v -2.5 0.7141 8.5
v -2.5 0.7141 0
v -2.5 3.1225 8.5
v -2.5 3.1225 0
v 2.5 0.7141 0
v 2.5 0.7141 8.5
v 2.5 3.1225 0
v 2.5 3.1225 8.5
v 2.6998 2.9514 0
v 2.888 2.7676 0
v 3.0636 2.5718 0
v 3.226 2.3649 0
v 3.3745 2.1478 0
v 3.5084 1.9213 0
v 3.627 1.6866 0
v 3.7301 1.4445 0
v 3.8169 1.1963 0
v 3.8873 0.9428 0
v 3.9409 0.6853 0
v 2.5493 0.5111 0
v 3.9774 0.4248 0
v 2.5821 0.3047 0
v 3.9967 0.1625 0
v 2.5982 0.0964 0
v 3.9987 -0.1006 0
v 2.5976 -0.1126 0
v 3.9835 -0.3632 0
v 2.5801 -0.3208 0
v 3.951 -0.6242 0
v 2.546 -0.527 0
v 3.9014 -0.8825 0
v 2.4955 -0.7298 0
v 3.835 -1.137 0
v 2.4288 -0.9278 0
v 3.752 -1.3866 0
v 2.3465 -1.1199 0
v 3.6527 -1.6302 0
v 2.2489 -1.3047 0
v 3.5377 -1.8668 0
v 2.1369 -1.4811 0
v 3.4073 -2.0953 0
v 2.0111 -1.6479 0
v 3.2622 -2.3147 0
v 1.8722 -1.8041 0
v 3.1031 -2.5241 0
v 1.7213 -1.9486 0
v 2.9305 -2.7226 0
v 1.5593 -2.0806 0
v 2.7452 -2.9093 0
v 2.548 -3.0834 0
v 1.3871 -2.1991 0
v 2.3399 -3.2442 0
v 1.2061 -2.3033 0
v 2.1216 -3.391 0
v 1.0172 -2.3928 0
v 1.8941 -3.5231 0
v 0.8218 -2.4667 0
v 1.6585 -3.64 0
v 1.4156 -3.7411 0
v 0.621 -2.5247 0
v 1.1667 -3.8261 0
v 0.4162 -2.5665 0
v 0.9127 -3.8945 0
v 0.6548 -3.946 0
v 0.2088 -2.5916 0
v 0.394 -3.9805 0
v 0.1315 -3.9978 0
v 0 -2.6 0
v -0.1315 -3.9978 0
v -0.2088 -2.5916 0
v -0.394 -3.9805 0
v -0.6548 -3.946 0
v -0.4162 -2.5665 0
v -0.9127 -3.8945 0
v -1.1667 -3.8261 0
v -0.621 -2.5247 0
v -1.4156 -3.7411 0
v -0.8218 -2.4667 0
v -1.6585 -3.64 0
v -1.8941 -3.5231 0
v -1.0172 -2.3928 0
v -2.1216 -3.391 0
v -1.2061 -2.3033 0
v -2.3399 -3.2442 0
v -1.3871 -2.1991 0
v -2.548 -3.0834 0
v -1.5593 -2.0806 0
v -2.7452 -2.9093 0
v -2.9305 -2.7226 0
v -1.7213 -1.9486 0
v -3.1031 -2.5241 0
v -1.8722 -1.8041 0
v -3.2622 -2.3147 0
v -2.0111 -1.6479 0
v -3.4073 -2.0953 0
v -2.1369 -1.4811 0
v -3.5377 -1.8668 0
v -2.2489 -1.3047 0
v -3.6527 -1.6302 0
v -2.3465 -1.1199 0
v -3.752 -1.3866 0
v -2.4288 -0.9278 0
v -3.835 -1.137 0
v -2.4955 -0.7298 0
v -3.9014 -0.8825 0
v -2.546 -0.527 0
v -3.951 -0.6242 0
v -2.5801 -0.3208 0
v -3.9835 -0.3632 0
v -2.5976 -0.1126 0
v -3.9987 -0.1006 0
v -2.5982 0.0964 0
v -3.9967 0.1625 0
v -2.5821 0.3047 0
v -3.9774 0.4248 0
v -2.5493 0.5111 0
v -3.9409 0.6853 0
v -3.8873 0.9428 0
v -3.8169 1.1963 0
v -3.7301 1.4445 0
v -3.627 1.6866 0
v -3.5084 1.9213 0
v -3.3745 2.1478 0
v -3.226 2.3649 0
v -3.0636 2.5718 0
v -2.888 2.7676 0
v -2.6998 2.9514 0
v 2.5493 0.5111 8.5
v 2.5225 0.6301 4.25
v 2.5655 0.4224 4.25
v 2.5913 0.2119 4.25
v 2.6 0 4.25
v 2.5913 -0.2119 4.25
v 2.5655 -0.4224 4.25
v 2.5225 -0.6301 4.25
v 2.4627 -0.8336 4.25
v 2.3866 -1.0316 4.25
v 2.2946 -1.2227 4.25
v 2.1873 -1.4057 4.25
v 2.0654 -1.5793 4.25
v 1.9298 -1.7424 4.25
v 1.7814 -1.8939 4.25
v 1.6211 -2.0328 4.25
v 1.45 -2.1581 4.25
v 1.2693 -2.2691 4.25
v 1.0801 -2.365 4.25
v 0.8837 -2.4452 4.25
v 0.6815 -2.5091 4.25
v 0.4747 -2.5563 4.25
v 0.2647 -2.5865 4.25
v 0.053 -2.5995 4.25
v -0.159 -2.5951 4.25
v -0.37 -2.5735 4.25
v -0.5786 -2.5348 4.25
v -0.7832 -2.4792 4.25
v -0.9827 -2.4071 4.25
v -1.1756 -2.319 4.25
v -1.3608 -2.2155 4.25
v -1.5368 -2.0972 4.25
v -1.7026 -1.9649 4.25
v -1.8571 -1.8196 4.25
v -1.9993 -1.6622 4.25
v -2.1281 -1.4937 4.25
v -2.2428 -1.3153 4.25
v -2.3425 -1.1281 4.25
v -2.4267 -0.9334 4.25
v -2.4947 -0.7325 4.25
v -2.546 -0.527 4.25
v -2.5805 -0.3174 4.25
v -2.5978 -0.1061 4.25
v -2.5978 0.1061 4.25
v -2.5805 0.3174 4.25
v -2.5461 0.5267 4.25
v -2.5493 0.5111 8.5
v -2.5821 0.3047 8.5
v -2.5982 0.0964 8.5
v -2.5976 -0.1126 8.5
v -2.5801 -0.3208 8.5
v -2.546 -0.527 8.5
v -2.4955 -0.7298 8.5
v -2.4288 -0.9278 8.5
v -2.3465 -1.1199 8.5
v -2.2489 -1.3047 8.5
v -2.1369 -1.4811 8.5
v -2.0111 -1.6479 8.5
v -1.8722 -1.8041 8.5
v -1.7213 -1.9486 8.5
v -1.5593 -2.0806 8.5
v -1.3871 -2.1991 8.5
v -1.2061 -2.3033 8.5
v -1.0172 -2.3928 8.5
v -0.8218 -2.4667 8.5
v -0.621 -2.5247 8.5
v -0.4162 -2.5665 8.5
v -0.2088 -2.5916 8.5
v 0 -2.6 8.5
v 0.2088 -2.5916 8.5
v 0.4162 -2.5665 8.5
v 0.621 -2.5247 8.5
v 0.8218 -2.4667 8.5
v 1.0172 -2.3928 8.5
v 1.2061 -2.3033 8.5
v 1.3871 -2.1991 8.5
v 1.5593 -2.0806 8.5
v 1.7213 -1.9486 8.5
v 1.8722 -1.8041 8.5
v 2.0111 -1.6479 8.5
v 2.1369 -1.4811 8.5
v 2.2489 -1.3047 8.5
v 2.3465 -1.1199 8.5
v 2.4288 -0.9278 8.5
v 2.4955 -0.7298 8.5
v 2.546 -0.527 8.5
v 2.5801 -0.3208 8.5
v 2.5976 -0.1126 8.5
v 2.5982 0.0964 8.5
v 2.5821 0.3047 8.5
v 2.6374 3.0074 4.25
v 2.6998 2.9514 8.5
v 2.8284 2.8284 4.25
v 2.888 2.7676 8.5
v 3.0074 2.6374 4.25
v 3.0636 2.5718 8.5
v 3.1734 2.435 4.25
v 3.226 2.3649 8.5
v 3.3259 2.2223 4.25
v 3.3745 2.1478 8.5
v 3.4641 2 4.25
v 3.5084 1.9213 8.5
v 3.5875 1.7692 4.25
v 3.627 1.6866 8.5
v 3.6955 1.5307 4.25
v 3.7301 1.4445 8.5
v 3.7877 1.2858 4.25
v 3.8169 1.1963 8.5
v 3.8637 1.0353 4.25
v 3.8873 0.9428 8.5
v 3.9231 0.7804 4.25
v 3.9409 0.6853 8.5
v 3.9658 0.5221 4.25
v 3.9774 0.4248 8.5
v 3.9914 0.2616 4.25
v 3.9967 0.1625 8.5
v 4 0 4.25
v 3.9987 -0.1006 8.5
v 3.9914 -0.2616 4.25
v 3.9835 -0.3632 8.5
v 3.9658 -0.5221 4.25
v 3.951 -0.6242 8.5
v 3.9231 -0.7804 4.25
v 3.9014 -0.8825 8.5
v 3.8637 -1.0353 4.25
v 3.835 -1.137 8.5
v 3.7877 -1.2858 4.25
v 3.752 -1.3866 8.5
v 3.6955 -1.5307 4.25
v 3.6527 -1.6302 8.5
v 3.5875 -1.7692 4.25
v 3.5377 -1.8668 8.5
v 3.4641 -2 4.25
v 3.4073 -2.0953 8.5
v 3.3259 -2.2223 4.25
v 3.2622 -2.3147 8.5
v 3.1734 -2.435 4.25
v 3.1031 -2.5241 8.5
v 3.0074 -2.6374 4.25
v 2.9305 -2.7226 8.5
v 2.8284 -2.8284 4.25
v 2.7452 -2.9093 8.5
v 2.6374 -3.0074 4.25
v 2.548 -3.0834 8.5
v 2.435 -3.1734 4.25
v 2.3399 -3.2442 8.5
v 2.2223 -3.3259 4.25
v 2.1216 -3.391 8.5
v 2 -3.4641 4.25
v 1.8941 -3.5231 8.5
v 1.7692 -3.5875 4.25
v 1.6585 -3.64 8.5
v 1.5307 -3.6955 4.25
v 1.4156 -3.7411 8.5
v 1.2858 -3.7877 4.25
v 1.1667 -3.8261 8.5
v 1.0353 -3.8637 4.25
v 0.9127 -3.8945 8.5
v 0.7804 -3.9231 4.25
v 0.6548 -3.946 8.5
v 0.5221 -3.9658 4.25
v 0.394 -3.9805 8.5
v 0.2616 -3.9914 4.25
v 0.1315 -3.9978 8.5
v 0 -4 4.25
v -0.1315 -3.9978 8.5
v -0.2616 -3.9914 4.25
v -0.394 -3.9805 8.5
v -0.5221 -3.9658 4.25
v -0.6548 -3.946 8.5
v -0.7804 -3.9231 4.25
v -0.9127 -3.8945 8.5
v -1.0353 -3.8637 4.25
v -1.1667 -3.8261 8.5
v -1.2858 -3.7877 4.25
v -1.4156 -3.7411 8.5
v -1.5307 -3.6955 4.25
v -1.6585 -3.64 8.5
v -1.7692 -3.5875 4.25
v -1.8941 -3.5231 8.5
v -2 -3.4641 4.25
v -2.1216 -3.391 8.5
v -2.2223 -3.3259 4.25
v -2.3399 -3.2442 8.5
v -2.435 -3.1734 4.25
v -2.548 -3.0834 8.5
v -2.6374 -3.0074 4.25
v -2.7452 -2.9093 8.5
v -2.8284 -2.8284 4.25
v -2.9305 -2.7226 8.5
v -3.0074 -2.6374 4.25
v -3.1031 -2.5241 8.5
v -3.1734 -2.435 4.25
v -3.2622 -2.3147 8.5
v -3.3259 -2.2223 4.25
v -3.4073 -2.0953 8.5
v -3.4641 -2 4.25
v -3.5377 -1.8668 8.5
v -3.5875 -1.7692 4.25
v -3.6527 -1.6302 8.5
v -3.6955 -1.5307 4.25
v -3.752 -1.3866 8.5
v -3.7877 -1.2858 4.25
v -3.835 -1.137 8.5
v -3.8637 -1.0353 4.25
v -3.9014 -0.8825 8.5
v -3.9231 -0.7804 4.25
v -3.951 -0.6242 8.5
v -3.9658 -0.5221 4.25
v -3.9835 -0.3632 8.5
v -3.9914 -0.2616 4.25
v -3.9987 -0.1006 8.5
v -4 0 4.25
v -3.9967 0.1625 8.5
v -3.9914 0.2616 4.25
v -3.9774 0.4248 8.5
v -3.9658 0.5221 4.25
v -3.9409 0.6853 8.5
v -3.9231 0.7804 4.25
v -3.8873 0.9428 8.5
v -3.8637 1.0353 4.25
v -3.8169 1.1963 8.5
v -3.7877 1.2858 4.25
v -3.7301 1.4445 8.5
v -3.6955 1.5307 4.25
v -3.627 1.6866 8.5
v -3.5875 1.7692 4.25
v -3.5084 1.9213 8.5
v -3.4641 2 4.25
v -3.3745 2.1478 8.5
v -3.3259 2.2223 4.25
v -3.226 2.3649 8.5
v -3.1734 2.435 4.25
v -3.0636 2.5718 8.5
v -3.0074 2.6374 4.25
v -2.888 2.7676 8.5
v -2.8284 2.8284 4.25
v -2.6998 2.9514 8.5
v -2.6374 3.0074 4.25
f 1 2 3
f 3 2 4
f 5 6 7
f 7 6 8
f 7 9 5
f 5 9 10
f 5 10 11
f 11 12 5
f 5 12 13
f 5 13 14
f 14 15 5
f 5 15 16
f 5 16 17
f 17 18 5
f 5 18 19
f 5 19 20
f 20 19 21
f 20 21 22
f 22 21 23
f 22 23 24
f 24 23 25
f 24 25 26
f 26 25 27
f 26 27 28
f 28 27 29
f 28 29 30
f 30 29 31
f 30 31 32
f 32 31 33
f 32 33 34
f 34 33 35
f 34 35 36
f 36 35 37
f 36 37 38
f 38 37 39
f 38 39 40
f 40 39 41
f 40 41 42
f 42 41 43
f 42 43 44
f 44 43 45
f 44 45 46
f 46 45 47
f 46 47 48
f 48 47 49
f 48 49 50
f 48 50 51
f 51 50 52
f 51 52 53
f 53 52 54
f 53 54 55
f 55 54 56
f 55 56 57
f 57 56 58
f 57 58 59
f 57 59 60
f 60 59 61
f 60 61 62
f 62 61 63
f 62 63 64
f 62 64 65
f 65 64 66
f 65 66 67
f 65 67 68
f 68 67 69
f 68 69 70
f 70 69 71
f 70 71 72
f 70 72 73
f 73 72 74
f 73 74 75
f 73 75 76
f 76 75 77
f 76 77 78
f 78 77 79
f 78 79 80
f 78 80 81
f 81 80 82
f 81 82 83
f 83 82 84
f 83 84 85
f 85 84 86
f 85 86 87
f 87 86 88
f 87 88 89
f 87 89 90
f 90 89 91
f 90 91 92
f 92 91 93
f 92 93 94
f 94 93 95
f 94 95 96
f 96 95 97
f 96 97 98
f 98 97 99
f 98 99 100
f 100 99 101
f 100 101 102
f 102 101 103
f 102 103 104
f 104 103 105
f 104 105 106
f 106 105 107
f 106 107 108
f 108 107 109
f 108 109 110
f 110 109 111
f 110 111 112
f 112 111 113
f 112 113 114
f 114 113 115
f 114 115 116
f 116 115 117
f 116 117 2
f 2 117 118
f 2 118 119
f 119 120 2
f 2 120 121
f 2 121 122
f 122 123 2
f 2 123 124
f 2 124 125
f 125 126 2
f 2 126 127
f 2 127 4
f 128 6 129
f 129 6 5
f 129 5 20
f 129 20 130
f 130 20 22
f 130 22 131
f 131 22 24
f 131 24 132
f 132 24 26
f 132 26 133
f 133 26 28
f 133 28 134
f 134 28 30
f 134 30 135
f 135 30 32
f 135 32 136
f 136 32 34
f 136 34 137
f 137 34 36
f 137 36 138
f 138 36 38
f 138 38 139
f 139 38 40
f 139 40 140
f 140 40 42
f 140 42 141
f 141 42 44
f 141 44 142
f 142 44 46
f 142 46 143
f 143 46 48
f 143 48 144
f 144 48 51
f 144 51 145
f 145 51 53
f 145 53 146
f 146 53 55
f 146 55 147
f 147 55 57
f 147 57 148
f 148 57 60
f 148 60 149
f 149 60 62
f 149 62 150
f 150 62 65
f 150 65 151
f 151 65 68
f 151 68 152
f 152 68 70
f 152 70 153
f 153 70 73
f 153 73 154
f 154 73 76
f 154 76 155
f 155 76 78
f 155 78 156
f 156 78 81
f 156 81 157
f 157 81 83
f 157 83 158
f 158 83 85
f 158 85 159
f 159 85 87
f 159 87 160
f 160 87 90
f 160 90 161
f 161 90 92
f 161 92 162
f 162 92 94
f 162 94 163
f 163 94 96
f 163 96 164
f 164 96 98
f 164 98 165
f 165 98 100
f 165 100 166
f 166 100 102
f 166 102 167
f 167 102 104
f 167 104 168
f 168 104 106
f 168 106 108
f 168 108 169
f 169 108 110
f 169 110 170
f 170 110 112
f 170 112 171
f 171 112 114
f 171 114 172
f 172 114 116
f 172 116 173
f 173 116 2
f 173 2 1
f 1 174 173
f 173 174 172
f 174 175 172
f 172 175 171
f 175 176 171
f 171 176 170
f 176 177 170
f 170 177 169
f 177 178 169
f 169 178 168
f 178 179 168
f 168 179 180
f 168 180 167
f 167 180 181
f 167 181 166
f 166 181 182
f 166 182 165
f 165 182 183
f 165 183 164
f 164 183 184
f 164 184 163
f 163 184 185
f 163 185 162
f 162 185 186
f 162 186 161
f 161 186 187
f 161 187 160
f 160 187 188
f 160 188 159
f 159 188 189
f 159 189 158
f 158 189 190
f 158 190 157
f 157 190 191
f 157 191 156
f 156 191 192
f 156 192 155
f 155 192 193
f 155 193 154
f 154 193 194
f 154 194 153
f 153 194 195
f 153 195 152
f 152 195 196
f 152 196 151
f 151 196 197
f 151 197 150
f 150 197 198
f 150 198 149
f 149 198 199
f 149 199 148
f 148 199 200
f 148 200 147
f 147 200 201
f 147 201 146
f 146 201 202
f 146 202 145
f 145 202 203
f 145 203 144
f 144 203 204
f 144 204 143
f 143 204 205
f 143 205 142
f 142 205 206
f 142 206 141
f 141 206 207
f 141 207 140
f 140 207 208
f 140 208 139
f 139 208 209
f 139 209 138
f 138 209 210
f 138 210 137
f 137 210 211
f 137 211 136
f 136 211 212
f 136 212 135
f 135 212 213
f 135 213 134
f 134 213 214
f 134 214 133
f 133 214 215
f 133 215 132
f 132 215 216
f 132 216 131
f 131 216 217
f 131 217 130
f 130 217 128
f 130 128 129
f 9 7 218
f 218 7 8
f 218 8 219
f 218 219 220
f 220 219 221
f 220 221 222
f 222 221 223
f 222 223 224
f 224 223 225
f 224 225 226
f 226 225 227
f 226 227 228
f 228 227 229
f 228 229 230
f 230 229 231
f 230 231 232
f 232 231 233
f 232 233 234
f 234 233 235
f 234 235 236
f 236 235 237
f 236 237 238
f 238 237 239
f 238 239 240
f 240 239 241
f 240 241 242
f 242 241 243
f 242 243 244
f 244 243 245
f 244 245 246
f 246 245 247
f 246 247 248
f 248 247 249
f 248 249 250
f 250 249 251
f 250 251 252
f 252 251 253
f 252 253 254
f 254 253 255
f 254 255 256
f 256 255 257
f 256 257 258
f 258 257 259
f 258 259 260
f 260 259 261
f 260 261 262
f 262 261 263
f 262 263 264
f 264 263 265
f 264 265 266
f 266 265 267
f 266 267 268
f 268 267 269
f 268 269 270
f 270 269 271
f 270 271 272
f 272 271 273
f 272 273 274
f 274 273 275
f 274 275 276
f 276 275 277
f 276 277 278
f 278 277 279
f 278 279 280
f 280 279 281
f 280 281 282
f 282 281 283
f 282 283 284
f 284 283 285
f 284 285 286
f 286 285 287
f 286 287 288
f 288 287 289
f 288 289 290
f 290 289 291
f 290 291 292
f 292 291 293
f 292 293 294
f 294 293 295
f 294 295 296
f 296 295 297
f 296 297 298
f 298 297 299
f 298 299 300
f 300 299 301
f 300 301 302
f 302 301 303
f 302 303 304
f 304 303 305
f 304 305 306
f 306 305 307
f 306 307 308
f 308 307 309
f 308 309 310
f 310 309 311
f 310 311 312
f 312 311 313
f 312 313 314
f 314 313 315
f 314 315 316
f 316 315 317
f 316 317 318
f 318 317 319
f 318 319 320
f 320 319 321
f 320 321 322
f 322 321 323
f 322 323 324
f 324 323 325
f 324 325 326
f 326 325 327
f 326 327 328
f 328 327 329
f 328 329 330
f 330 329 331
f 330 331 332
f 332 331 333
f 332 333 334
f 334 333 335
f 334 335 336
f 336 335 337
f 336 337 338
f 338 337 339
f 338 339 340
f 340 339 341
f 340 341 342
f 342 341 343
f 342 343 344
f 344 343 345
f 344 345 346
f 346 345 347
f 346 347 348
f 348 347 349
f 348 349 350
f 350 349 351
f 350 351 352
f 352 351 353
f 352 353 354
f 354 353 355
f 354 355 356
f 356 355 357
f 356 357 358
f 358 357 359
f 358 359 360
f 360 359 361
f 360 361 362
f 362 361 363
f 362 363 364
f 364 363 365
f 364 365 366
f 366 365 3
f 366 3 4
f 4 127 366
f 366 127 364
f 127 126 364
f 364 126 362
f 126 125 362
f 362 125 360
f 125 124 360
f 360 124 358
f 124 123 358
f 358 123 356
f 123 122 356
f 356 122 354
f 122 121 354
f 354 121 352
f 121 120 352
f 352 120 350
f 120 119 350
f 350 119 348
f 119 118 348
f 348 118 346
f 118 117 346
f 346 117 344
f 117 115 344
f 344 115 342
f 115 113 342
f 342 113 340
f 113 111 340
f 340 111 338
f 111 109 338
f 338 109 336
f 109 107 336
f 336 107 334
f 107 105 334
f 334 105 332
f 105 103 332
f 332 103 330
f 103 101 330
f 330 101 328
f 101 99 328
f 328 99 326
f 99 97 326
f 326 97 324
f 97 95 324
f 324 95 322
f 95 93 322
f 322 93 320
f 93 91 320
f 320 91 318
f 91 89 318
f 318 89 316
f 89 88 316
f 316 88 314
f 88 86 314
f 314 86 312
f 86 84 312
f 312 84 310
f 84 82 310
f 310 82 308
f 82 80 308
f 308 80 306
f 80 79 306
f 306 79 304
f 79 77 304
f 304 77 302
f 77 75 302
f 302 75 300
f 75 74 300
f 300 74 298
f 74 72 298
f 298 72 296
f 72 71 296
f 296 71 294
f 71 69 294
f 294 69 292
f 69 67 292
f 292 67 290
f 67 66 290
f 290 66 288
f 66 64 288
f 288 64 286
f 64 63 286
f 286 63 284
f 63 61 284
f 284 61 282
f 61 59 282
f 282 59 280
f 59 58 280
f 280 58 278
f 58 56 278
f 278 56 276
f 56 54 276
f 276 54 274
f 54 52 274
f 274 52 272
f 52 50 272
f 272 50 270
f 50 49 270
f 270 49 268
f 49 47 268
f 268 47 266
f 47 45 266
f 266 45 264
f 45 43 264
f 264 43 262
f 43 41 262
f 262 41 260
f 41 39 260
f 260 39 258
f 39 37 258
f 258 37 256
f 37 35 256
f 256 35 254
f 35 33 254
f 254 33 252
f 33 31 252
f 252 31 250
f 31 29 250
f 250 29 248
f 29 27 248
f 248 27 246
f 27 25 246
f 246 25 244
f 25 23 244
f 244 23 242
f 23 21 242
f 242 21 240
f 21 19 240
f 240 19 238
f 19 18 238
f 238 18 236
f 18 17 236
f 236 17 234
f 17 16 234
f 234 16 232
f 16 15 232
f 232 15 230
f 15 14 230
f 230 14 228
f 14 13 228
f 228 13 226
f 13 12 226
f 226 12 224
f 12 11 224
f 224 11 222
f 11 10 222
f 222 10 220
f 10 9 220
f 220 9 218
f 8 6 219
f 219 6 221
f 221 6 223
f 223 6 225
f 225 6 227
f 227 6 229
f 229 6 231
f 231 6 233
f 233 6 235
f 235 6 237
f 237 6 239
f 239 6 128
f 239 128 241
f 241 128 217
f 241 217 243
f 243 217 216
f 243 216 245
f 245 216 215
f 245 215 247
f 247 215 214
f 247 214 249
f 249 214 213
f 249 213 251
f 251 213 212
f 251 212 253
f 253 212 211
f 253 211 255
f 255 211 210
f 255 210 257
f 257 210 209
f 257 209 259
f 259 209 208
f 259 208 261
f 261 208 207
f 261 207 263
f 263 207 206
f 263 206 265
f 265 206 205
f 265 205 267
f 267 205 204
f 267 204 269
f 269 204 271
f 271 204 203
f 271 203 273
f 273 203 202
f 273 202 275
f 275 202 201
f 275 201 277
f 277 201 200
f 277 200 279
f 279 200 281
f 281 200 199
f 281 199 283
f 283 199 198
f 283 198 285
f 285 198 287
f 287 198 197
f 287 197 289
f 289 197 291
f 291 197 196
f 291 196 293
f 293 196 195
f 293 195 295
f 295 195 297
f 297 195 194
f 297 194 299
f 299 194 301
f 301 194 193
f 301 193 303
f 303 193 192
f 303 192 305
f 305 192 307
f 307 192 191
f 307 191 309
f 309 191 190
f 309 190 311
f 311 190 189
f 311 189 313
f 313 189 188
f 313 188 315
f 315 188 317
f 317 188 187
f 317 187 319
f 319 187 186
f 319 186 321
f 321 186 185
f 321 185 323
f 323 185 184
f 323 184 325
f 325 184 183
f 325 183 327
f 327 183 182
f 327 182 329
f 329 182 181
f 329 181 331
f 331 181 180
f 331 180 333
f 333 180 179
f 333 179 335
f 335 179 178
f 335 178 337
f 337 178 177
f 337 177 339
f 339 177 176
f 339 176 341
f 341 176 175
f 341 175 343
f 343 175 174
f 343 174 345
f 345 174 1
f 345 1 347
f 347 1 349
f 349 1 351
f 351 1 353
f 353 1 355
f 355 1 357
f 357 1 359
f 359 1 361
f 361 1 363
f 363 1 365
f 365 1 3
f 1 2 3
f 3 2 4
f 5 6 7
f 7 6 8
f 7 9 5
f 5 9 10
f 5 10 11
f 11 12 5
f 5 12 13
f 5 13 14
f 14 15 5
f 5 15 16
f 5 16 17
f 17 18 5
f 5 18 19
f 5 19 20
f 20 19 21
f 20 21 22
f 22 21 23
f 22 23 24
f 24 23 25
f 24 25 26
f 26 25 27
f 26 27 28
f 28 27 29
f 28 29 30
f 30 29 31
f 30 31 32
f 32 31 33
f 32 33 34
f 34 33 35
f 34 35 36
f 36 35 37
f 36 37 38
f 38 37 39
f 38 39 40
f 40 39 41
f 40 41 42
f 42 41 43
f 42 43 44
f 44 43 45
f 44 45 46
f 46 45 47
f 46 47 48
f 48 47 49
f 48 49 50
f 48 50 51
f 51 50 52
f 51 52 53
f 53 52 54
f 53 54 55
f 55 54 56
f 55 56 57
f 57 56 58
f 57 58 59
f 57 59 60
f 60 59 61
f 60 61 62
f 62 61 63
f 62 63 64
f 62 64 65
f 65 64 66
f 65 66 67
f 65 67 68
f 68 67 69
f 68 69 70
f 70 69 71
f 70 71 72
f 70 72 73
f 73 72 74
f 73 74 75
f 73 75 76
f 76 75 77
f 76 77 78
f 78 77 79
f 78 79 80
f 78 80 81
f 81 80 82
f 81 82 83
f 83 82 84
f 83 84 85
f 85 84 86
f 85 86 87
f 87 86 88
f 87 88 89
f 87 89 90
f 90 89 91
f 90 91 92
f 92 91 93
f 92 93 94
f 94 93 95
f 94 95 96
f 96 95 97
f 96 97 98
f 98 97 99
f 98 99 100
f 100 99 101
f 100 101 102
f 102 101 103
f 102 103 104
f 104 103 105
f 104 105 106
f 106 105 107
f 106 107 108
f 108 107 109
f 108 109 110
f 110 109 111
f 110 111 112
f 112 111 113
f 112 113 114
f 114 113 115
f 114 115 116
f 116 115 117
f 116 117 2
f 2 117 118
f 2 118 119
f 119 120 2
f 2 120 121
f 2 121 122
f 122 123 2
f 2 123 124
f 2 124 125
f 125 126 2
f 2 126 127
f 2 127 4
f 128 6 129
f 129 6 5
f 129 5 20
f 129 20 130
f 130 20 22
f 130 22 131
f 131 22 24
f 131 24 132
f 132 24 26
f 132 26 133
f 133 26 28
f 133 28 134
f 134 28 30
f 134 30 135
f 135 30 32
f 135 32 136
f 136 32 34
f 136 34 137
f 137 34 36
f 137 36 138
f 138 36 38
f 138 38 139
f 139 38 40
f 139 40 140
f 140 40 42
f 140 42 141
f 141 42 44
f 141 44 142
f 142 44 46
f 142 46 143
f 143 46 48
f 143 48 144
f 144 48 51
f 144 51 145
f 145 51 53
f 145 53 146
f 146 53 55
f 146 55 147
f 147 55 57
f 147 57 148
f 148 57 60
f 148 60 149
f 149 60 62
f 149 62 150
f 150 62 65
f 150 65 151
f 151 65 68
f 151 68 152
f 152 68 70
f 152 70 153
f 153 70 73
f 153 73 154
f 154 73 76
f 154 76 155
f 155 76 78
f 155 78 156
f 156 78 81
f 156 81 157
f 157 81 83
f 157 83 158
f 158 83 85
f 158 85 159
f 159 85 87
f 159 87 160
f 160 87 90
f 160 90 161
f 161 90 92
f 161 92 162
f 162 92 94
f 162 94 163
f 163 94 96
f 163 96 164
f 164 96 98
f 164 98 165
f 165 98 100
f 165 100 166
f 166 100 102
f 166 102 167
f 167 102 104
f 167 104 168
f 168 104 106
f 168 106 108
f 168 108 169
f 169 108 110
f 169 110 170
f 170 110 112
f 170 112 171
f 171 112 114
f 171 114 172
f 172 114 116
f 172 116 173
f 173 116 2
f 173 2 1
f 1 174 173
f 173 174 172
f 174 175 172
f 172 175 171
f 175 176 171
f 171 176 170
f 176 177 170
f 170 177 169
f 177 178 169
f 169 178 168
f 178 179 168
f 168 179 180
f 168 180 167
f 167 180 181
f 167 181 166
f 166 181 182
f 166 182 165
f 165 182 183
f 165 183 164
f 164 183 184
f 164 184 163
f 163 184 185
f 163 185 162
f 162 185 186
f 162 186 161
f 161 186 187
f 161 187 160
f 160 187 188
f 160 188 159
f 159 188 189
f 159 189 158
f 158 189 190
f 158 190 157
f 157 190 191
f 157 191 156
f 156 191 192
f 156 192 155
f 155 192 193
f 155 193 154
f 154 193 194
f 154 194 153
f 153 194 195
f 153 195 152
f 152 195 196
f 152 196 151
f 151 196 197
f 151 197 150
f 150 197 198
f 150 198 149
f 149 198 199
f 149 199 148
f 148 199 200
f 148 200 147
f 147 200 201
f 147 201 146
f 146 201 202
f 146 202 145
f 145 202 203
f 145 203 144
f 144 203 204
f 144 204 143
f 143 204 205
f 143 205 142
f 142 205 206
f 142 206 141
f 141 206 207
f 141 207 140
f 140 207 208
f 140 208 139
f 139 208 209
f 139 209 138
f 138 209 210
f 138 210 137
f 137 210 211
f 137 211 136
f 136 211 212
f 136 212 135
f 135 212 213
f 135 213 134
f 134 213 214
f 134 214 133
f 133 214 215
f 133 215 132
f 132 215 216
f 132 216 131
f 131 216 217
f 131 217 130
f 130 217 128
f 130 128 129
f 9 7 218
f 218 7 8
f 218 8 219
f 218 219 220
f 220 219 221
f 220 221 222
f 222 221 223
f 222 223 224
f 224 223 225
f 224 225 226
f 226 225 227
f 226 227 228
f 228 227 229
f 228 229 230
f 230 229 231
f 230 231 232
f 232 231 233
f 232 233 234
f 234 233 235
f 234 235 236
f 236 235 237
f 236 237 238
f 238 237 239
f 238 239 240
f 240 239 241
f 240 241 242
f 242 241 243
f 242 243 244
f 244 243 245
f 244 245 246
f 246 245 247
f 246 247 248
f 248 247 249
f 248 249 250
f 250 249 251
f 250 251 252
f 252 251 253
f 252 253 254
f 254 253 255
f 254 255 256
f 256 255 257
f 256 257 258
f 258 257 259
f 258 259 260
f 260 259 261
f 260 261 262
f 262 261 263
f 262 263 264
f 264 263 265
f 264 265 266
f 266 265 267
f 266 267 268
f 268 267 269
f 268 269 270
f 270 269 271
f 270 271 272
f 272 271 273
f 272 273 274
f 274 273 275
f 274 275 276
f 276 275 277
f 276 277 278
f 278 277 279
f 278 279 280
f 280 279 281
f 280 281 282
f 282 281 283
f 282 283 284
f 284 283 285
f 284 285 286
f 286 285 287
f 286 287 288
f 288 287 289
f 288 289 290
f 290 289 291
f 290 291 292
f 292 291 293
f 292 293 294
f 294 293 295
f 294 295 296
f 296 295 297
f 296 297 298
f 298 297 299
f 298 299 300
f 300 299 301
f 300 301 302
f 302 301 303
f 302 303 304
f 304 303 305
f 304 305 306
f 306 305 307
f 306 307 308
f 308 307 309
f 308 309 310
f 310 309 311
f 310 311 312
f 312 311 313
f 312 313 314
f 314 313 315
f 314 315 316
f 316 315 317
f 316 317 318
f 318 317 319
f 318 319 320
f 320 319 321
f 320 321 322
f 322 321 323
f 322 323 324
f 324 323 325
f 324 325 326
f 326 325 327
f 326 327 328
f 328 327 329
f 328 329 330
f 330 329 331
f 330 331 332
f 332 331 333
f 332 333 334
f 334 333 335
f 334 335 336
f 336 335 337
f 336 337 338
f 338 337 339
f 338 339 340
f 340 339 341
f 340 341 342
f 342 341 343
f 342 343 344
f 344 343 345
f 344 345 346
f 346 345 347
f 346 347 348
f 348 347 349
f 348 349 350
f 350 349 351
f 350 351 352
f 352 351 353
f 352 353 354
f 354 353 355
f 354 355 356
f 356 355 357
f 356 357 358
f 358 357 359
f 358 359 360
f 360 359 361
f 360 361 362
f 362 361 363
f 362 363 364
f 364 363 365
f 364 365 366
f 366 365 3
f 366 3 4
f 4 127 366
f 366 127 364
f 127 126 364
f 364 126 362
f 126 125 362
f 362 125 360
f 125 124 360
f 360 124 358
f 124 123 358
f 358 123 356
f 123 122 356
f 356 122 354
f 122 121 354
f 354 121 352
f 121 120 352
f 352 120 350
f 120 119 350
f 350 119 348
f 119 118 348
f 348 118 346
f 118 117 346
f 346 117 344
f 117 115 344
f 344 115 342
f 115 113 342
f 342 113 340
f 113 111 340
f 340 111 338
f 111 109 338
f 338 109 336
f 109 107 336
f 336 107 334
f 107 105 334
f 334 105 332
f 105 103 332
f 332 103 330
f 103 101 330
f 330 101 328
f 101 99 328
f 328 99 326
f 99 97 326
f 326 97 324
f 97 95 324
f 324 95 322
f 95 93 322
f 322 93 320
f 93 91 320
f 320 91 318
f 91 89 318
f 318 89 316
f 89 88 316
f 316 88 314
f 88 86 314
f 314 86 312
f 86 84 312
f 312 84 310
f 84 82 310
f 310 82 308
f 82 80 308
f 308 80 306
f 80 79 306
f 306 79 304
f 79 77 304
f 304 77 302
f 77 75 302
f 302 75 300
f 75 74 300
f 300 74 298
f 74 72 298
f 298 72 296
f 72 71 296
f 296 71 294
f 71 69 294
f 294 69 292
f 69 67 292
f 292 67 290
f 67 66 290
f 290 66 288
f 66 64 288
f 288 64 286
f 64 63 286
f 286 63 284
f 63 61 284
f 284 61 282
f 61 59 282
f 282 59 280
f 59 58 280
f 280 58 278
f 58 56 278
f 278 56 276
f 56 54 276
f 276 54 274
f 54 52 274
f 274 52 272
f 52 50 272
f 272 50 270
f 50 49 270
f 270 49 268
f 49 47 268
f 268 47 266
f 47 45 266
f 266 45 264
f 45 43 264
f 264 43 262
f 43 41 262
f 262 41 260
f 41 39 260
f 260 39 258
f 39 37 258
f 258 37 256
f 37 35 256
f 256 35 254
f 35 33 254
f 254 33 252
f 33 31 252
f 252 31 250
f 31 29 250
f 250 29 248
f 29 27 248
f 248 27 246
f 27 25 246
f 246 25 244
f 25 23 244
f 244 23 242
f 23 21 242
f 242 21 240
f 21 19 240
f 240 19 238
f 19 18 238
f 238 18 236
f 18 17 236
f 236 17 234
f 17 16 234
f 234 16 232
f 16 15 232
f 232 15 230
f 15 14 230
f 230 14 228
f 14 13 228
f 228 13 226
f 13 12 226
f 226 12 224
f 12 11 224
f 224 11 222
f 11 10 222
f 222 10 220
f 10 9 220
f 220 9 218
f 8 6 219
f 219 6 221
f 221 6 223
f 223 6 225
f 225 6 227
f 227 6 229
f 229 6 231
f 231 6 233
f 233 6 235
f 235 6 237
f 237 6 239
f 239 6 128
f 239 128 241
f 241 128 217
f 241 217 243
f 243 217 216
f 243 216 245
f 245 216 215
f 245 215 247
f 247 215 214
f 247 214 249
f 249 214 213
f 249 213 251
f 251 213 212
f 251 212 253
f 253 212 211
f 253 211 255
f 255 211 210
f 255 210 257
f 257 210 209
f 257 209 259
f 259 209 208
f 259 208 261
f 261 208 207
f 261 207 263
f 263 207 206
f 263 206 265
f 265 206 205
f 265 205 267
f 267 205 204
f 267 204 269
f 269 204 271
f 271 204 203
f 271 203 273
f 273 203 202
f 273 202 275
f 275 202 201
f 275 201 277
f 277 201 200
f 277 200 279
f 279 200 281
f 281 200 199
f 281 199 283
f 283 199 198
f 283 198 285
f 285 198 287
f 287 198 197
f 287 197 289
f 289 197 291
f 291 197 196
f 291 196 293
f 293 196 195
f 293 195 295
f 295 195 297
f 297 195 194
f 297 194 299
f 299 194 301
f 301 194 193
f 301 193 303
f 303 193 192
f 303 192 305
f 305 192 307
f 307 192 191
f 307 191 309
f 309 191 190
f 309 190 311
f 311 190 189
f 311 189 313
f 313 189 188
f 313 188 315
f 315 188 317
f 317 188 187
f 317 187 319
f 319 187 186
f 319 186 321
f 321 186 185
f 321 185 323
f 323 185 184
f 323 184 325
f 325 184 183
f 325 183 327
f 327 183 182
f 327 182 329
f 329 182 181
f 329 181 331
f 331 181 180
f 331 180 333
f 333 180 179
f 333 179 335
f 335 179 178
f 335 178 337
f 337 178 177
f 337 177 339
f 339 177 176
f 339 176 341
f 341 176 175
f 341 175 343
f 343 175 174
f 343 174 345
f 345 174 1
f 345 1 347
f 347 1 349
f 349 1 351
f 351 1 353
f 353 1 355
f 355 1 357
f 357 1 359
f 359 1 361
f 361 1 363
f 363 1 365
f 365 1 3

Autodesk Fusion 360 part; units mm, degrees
sketch "Sketch1" plane through (0, 0, 0) normal (0, 0, 1) x (1, 0, 0)
  circle A0 centre (0, 0) radius 4
  dimension "d7" = 8
extrude "Extrude2" add sketch "Sketch1" along normal blind 8.5 makes body 1
extrude "Extrude1" add sketch "Sketch1" along normal blind 8.5 separate body makes body 2
sketch "Sketch2" plane through (0, 0, 8.5) normal (0, 0, 1) x (-1, 0, 0)
  circle A0 centre (0, 0) radius 4
  circle A1 centre (0, 0) radius 2.6
  dimension "d12" = 5.2
extrude "Extrude3" cut sketch "Sketch2" against normal blind 108.5 contours A1 bodies 1 2
sketch "Sketch3" plane through (0, 0, 0) normal (0, 1, 0) x (1, 0, 0)
  line L0 (-2.5, 0) -> (2.5, 0)
  line L1 (2.5, 0) -> (2.5, -8.5)
  line L2 (2.5, -8.5) -> (-2.5, -8.5)
  line L3 (-2.5, -8.5) -> (-2.5, 0)
  dimension "d15" = 5
  dimension "d16" = 8.5
extrude "Extrude4" cut sketch "Sketch3" along normal blind 102.6 bodies 1 2
equation "outer_radius = 4 mm"
equation "shaft_hole_radius = 2.6 mm"
equation "screw_hole_length = length"
equation "length = 8.5 mm"
equation "extra = 100 mm"
equation "screw_hole_width = 5 mm"
equation "d7 = outer_radius * 2"
equation "d8 = length"
equation "d10 = length"
equation "d12 = shaft_hole_radius * 2"
equation "d13 = -( length + extra )"
equation "d15 = screw_hole_width"
equation "d16 = screw_hole_length"
equation "d17 = shaft_hole_radius + extra"
